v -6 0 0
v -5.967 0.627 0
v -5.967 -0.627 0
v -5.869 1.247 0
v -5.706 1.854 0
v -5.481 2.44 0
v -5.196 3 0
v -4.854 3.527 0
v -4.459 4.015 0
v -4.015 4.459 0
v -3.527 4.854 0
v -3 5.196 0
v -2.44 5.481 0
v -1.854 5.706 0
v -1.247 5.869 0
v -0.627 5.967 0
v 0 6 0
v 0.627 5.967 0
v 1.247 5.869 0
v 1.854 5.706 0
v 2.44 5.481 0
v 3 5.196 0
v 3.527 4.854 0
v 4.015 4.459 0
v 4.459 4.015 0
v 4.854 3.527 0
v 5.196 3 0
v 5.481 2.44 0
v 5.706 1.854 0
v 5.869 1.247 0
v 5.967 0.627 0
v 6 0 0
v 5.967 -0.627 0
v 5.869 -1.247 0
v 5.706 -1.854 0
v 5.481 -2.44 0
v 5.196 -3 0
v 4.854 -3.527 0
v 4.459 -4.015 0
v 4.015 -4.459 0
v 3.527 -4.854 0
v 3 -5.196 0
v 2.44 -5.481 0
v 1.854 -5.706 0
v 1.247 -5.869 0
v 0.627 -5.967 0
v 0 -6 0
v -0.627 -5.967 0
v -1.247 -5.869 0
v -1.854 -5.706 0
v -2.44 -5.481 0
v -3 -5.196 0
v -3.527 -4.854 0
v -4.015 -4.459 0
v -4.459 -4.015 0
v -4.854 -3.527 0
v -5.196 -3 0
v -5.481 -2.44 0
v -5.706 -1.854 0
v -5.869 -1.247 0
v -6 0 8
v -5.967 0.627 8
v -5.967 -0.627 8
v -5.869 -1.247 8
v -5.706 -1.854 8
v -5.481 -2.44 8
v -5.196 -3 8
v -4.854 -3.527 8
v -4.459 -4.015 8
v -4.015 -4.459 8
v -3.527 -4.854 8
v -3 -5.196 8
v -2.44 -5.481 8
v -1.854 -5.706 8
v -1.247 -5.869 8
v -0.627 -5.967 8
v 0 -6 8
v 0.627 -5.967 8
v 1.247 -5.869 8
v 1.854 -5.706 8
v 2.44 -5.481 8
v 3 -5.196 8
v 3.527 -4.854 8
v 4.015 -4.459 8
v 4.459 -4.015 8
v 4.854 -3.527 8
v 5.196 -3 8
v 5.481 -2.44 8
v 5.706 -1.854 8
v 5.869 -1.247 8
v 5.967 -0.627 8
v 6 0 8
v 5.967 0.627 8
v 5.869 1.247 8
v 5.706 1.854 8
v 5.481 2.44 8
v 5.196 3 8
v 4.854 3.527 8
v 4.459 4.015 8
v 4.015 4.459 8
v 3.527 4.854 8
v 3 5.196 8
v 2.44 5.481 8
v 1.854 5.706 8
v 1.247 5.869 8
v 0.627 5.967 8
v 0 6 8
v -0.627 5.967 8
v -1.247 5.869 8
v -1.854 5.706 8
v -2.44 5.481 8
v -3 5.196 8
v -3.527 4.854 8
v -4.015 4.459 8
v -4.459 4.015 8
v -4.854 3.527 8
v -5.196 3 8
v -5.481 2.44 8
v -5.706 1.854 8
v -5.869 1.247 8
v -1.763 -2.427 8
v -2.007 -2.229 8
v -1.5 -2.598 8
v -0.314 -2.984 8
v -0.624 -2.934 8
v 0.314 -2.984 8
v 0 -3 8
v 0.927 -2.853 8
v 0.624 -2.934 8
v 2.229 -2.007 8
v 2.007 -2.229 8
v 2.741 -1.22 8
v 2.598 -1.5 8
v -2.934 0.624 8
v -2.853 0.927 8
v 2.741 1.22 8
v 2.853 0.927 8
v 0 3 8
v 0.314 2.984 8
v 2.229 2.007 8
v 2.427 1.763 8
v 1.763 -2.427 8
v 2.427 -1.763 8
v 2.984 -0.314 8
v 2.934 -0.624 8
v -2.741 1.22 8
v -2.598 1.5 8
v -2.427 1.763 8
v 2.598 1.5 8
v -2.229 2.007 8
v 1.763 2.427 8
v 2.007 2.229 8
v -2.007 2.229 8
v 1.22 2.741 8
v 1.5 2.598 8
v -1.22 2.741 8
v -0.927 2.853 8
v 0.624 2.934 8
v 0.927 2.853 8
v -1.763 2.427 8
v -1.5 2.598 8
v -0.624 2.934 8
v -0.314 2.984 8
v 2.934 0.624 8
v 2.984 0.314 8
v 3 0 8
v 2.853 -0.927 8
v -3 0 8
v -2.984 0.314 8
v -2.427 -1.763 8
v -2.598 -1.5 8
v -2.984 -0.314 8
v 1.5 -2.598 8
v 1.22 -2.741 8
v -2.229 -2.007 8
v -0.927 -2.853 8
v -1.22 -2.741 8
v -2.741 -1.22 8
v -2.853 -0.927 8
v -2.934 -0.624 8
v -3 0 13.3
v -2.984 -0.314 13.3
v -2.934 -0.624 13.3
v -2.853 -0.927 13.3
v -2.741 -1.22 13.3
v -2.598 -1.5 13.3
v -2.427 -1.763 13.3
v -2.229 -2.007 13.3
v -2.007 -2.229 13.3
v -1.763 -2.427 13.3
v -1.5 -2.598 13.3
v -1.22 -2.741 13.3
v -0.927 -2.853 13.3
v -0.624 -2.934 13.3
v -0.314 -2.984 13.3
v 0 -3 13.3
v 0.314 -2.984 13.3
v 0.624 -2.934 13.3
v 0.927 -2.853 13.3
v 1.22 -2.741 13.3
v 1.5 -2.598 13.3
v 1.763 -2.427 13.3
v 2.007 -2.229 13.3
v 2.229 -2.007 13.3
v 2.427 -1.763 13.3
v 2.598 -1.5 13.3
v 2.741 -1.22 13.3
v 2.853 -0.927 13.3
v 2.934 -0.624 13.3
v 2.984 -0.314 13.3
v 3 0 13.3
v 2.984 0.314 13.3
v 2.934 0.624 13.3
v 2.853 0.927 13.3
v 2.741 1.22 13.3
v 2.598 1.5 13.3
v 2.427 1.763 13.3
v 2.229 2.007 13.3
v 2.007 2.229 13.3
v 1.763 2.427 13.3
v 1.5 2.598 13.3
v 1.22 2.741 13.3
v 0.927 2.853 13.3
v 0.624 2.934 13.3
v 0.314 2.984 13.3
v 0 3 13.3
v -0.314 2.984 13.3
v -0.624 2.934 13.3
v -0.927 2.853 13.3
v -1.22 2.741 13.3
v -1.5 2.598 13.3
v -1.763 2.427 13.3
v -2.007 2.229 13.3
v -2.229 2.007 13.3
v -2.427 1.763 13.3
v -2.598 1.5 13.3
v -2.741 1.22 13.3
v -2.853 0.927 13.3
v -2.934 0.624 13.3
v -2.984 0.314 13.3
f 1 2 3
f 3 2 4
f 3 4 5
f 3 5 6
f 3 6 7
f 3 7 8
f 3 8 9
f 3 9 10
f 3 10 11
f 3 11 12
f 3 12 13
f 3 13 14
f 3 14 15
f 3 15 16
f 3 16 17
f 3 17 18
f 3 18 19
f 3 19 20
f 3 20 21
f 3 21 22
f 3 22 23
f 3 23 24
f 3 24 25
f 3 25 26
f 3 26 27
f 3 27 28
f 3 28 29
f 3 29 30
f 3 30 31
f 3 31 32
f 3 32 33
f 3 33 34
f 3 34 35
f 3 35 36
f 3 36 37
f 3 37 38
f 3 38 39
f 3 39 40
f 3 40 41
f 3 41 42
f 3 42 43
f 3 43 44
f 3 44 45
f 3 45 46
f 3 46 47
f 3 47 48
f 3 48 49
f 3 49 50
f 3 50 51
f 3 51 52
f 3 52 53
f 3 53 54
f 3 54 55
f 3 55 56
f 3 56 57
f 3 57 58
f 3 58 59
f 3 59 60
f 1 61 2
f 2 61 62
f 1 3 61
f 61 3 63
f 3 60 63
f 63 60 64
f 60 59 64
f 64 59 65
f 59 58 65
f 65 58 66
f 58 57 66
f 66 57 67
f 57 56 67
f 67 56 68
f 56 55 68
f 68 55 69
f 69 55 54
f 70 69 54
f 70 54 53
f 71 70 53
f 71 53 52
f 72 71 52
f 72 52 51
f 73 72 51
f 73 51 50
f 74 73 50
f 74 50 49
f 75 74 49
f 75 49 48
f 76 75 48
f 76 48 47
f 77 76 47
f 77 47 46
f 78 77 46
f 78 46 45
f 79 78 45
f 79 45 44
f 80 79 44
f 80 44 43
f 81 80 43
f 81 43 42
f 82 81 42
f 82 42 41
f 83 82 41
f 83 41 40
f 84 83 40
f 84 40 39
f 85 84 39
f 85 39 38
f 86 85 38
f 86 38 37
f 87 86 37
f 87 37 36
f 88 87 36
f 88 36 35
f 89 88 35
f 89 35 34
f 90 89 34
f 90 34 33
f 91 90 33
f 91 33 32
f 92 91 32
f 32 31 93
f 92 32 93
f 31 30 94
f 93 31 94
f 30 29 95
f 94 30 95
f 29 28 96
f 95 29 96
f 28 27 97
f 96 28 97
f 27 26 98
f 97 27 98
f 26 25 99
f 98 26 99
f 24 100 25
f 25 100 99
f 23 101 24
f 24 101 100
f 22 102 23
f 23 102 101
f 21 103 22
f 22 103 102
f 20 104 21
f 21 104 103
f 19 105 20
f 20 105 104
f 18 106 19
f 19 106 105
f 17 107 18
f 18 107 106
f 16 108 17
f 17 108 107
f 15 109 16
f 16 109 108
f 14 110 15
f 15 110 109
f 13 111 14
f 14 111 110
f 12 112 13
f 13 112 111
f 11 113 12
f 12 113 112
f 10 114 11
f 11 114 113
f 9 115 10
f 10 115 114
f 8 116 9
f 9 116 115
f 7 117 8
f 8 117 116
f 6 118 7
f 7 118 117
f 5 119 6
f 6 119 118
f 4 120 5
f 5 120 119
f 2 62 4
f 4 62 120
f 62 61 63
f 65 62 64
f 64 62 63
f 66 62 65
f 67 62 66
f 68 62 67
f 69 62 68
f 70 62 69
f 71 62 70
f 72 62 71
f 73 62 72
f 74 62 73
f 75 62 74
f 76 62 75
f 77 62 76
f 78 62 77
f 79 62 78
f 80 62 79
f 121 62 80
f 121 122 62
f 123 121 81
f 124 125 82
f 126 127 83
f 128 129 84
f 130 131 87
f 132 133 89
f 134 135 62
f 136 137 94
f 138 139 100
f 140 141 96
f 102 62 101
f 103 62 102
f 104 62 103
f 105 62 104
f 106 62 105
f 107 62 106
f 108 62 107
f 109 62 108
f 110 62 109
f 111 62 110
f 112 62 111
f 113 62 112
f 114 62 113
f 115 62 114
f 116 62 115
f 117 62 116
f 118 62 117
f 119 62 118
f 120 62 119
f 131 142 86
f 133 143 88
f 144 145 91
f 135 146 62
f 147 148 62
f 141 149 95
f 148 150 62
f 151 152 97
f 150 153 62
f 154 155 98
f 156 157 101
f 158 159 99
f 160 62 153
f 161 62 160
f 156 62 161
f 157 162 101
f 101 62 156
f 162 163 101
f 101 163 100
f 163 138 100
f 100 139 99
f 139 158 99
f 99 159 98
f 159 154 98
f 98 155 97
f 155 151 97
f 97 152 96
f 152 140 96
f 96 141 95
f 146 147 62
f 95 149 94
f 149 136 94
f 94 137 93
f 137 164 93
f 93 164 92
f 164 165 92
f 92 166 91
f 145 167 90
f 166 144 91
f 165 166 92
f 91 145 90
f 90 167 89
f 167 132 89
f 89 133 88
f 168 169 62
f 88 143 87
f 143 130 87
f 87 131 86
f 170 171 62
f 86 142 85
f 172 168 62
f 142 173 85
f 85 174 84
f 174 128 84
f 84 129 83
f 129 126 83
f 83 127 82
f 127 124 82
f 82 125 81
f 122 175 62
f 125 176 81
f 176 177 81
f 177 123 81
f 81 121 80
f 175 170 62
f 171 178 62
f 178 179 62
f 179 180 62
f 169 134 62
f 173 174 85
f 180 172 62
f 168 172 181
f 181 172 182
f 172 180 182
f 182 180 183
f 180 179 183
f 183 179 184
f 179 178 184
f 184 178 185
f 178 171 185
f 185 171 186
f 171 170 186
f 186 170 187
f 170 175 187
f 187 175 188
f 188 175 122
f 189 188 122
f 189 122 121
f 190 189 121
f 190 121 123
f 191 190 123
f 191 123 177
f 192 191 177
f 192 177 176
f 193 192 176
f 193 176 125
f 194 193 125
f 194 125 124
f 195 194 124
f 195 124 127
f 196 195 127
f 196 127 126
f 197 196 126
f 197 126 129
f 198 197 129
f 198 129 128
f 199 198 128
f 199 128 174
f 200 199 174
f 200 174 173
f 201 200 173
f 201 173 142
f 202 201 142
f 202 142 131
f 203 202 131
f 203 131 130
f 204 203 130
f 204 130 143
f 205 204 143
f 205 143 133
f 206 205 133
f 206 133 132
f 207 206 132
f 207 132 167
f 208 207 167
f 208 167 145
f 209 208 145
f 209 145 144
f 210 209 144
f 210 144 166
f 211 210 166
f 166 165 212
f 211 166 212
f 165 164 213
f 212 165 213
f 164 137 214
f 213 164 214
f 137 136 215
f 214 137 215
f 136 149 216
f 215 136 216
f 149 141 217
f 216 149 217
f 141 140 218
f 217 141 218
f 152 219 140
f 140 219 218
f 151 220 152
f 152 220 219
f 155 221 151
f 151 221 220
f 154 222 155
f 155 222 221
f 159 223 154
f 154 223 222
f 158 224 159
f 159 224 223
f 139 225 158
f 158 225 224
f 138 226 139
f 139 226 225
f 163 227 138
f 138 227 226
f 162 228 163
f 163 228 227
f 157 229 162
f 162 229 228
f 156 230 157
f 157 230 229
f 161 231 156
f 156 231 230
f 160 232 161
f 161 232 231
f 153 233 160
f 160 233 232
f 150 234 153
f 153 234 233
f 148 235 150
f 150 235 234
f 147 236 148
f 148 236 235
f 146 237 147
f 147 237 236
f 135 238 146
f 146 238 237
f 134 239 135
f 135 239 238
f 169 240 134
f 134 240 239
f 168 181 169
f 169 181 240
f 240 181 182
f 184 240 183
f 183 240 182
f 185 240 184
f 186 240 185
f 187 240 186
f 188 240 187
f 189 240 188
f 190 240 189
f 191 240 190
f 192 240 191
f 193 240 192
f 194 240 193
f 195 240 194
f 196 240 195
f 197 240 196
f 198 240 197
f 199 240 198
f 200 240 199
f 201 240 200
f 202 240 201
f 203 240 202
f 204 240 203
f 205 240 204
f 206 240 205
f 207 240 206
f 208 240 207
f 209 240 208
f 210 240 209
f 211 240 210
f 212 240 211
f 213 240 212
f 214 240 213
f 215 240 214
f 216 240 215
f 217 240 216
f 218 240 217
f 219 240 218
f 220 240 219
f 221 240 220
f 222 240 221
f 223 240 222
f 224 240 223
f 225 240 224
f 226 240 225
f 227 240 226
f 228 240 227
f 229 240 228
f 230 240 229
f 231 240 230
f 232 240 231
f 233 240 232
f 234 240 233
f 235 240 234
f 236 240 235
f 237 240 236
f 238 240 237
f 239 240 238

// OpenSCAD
// file: flange_with_recess.scad
$fn = 60;

module flange(r_flange, t_flange, r_shaft, d_shaft, r_hole = 0, r_recess = 0, d_recess = 0, fn_recess = $fn) {
  difference() {

    // outer flange/cylinder
    cylinder(h = d_shaft+t_flange, r = r_flange);

    // bolt hole
    translate([0, 0, -t_flange]) cylinder(h = 2*d_shaft+t_flange, r = r_hole);

    // donut cutter
    translate([0, 0, t_flange]) {
      difference() {
        cylinder(h = d_shaft+t_flange, r = 2*r_flange);
        cylinder(h = 2*d_shaft+t_flange, r = r_shaft);
      }
    }

    // recess
    translate([0, 0, -d_recess]) cylinder(h = 2*d_recess, r = r_recess, $fn = fn_recess);
  }
}
// main file
$fn = 60;

hole_diameter = 6;
hole_depth = 5.3;

include <flange_with_recess.scad>

flange(hole_diameter, 8, hole_diameter/2, hole_depth);
